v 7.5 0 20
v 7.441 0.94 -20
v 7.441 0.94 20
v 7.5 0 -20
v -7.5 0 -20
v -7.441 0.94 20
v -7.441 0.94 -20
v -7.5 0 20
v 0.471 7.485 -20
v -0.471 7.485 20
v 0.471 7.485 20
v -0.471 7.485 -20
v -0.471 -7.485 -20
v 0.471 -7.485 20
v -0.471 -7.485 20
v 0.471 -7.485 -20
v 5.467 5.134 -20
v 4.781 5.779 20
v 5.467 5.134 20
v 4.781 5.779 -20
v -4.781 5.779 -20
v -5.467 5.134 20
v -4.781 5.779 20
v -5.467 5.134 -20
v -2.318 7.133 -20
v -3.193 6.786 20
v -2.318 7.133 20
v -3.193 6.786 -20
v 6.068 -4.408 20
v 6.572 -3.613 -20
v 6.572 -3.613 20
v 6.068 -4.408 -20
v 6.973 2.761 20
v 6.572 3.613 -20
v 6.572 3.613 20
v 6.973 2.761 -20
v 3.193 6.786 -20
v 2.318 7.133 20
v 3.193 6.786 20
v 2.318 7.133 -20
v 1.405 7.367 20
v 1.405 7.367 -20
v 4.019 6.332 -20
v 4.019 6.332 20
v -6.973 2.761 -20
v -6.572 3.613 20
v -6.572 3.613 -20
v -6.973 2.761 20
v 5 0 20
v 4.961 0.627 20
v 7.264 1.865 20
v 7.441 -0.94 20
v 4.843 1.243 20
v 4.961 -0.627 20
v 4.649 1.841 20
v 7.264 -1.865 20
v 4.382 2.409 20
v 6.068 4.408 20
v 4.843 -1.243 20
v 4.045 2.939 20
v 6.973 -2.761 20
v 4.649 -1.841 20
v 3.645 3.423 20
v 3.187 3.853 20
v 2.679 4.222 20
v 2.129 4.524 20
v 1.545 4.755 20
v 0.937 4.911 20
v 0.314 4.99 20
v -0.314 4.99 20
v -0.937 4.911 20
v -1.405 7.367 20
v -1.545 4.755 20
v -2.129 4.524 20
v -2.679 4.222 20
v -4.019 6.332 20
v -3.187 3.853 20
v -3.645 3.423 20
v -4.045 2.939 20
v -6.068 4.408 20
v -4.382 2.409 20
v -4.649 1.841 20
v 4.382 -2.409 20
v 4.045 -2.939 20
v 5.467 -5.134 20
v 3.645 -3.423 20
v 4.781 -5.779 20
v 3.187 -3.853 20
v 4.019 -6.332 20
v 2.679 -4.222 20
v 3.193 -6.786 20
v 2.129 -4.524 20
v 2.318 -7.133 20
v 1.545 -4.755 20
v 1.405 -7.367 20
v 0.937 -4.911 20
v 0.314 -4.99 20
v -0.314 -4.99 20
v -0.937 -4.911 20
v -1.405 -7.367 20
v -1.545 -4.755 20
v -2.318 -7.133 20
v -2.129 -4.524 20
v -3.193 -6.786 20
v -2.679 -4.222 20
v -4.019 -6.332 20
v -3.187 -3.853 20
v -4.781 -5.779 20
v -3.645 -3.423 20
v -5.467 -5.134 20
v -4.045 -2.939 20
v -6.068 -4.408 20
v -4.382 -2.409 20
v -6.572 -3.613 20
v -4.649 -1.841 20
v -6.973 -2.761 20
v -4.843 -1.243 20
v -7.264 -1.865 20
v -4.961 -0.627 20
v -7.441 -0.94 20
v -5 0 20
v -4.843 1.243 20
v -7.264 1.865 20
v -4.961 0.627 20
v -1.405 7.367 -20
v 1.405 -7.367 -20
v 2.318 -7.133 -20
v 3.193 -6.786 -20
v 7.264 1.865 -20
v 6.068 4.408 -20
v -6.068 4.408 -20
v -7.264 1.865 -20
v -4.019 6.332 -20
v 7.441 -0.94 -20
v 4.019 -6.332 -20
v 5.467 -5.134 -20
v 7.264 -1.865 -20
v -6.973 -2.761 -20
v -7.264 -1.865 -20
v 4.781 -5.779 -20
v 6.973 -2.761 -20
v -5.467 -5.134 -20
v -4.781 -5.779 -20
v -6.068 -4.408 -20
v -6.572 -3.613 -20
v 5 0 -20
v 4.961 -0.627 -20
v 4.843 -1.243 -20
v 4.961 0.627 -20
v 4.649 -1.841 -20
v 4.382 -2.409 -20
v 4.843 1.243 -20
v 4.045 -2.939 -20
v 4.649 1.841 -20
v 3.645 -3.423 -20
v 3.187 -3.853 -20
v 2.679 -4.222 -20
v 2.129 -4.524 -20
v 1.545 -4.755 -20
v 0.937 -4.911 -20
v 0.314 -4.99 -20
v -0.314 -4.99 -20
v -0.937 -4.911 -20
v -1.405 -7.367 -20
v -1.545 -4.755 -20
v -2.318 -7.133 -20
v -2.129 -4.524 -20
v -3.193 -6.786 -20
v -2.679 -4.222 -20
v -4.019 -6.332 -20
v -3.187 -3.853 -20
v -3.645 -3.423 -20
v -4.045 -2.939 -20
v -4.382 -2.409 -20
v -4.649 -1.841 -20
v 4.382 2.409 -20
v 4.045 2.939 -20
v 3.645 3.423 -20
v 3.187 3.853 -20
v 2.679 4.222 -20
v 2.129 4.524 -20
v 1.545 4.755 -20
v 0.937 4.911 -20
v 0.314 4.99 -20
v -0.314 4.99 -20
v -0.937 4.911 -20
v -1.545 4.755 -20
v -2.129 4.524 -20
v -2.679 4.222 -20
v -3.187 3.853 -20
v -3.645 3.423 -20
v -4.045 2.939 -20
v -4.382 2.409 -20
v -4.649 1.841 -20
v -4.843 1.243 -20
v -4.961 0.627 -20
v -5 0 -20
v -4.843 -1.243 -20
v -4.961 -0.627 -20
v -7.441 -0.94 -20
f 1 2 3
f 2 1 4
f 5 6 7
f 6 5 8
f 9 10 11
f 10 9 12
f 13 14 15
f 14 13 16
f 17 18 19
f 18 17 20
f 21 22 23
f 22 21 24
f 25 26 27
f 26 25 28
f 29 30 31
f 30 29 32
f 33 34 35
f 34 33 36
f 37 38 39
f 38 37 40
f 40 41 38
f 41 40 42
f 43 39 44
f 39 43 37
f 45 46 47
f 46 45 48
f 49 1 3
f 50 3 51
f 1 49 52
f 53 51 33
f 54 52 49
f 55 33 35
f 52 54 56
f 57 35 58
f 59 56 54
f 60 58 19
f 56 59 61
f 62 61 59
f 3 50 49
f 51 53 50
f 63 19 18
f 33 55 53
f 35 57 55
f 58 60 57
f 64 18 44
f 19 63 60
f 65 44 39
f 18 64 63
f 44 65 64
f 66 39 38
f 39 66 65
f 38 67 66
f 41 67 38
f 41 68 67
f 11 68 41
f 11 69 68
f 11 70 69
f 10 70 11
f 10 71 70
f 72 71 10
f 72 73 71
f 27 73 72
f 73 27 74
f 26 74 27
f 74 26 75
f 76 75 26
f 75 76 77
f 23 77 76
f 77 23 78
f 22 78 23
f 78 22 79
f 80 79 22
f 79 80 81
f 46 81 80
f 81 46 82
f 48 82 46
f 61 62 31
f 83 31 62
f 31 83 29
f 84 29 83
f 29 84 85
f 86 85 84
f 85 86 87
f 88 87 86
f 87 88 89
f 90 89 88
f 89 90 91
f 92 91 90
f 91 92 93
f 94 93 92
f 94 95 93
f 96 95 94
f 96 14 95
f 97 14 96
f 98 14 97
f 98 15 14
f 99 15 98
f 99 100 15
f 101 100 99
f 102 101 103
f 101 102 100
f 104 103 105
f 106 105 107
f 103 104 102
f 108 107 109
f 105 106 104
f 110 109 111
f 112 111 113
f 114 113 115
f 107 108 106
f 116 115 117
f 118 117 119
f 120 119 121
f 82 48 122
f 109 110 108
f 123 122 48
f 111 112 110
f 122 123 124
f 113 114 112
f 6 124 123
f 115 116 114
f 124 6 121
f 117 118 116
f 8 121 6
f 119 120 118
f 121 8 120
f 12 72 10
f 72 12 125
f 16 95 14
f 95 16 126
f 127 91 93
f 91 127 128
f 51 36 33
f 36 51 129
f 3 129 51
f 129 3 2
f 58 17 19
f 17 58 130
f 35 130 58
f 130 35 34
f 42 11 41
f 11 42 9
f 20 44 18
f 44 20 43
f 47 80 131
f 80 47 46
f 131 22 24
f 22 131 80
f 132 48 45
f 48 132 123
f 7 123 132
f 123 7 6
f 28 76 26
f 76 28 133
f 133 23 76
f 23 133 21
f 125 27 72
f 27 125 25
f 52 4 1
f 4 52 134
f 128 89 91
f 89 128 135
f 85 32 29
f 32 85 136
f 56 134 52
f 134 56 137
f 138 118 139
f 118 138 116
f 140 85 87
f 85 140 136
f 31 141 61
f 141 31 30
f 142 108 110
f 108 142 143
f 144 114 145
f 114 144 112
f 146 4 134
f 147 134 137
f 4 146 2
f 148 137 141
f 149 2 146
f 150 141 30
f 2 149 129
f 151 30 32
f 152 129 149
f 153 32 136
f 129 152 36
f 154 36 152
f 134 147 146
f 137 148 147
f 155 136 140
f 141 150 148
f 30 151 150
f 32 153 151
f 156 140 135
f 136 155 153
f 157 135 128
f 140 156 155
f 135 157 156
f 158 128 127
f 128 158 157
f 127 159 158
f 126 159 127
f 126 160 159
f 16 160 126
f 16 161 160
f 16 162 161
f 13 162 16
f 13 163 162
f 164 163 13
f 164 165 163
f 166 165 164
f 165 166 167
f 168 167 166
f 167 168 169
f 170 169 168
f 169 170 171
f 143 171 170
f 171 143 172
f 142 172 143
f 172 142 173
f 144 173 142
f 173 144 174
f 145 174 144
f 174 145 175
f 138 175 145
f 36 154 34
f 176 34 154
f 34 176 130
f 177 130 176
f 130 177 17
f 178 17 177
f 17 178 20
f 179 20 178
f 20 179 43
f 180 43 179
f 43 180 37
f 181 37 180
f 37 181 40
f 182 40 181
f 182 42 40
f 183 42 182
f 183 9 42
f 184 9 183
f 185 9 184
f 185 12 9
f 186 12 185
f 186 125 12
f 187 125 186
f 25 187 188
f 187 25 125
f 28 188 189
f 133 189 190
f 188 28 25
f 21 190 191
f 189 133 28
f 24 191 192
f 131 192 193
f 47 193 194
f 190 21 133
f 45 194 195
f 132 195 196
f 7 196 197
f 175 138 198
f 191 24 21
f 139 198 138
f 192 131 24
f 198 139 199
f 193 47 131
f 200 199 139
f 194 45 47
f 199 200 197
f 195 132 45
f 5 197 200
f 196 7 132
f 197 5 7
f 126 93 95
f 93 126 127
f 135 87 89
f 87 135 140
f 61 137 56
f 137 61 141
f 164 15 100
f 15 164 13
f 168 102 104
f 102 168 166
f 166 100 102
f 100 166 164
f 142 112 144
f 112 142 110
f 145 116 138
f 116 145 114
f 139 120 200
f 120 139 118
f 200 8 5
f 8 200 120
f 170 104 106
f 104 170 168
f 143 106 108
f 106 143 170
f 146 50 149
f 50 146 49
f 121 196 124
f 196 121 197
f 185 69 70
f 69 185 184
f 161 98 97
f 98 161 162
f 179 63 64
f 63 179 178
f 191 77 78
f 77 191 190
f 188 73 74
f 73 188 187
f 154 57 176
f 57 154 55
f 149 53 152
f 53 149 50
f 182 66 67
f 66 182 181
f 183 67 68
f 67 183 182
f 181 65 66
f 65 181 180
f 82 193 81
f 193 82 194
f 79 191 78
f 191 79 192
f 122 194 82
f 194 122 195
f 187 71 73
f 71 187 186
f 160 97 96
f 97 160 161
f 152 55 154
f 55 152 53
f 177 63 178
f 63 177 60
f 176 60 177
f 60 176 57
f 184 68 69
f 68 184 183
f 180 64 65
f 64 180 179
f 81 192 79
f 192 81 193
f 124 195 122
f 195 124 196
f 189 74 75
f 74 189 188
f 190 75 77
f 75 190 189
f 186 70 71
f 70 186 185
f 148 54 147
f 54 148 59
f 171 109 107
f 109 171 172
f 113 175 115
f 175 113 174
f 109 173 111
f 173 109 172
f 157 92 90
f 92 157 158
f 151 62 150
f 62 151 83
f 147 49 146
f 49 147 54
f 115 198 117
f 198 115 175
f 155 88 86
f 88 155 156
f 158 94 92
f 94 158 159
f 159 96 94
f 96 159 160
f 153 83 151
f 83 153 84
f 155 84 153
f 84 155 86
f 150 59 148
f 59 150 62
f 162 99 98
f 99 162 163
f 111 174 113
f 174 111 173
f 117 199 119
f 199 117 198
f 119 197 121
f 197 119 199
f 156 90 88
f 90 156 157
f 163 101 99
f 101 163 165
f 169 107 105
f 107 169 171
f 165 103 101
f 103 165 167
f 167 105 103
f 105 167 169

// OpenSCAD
$fn = 50;


difference() {
	union() {
		translate(v = [0, 0, -20.0000000000]) {
			cylinder(h = 40, r = 7.5000000000);
		}
	}
	union() {
		translate(v = [0, 0, -100.0000000000]) {
			cylinder(h = 200, r = 5);
		}
	}
}
